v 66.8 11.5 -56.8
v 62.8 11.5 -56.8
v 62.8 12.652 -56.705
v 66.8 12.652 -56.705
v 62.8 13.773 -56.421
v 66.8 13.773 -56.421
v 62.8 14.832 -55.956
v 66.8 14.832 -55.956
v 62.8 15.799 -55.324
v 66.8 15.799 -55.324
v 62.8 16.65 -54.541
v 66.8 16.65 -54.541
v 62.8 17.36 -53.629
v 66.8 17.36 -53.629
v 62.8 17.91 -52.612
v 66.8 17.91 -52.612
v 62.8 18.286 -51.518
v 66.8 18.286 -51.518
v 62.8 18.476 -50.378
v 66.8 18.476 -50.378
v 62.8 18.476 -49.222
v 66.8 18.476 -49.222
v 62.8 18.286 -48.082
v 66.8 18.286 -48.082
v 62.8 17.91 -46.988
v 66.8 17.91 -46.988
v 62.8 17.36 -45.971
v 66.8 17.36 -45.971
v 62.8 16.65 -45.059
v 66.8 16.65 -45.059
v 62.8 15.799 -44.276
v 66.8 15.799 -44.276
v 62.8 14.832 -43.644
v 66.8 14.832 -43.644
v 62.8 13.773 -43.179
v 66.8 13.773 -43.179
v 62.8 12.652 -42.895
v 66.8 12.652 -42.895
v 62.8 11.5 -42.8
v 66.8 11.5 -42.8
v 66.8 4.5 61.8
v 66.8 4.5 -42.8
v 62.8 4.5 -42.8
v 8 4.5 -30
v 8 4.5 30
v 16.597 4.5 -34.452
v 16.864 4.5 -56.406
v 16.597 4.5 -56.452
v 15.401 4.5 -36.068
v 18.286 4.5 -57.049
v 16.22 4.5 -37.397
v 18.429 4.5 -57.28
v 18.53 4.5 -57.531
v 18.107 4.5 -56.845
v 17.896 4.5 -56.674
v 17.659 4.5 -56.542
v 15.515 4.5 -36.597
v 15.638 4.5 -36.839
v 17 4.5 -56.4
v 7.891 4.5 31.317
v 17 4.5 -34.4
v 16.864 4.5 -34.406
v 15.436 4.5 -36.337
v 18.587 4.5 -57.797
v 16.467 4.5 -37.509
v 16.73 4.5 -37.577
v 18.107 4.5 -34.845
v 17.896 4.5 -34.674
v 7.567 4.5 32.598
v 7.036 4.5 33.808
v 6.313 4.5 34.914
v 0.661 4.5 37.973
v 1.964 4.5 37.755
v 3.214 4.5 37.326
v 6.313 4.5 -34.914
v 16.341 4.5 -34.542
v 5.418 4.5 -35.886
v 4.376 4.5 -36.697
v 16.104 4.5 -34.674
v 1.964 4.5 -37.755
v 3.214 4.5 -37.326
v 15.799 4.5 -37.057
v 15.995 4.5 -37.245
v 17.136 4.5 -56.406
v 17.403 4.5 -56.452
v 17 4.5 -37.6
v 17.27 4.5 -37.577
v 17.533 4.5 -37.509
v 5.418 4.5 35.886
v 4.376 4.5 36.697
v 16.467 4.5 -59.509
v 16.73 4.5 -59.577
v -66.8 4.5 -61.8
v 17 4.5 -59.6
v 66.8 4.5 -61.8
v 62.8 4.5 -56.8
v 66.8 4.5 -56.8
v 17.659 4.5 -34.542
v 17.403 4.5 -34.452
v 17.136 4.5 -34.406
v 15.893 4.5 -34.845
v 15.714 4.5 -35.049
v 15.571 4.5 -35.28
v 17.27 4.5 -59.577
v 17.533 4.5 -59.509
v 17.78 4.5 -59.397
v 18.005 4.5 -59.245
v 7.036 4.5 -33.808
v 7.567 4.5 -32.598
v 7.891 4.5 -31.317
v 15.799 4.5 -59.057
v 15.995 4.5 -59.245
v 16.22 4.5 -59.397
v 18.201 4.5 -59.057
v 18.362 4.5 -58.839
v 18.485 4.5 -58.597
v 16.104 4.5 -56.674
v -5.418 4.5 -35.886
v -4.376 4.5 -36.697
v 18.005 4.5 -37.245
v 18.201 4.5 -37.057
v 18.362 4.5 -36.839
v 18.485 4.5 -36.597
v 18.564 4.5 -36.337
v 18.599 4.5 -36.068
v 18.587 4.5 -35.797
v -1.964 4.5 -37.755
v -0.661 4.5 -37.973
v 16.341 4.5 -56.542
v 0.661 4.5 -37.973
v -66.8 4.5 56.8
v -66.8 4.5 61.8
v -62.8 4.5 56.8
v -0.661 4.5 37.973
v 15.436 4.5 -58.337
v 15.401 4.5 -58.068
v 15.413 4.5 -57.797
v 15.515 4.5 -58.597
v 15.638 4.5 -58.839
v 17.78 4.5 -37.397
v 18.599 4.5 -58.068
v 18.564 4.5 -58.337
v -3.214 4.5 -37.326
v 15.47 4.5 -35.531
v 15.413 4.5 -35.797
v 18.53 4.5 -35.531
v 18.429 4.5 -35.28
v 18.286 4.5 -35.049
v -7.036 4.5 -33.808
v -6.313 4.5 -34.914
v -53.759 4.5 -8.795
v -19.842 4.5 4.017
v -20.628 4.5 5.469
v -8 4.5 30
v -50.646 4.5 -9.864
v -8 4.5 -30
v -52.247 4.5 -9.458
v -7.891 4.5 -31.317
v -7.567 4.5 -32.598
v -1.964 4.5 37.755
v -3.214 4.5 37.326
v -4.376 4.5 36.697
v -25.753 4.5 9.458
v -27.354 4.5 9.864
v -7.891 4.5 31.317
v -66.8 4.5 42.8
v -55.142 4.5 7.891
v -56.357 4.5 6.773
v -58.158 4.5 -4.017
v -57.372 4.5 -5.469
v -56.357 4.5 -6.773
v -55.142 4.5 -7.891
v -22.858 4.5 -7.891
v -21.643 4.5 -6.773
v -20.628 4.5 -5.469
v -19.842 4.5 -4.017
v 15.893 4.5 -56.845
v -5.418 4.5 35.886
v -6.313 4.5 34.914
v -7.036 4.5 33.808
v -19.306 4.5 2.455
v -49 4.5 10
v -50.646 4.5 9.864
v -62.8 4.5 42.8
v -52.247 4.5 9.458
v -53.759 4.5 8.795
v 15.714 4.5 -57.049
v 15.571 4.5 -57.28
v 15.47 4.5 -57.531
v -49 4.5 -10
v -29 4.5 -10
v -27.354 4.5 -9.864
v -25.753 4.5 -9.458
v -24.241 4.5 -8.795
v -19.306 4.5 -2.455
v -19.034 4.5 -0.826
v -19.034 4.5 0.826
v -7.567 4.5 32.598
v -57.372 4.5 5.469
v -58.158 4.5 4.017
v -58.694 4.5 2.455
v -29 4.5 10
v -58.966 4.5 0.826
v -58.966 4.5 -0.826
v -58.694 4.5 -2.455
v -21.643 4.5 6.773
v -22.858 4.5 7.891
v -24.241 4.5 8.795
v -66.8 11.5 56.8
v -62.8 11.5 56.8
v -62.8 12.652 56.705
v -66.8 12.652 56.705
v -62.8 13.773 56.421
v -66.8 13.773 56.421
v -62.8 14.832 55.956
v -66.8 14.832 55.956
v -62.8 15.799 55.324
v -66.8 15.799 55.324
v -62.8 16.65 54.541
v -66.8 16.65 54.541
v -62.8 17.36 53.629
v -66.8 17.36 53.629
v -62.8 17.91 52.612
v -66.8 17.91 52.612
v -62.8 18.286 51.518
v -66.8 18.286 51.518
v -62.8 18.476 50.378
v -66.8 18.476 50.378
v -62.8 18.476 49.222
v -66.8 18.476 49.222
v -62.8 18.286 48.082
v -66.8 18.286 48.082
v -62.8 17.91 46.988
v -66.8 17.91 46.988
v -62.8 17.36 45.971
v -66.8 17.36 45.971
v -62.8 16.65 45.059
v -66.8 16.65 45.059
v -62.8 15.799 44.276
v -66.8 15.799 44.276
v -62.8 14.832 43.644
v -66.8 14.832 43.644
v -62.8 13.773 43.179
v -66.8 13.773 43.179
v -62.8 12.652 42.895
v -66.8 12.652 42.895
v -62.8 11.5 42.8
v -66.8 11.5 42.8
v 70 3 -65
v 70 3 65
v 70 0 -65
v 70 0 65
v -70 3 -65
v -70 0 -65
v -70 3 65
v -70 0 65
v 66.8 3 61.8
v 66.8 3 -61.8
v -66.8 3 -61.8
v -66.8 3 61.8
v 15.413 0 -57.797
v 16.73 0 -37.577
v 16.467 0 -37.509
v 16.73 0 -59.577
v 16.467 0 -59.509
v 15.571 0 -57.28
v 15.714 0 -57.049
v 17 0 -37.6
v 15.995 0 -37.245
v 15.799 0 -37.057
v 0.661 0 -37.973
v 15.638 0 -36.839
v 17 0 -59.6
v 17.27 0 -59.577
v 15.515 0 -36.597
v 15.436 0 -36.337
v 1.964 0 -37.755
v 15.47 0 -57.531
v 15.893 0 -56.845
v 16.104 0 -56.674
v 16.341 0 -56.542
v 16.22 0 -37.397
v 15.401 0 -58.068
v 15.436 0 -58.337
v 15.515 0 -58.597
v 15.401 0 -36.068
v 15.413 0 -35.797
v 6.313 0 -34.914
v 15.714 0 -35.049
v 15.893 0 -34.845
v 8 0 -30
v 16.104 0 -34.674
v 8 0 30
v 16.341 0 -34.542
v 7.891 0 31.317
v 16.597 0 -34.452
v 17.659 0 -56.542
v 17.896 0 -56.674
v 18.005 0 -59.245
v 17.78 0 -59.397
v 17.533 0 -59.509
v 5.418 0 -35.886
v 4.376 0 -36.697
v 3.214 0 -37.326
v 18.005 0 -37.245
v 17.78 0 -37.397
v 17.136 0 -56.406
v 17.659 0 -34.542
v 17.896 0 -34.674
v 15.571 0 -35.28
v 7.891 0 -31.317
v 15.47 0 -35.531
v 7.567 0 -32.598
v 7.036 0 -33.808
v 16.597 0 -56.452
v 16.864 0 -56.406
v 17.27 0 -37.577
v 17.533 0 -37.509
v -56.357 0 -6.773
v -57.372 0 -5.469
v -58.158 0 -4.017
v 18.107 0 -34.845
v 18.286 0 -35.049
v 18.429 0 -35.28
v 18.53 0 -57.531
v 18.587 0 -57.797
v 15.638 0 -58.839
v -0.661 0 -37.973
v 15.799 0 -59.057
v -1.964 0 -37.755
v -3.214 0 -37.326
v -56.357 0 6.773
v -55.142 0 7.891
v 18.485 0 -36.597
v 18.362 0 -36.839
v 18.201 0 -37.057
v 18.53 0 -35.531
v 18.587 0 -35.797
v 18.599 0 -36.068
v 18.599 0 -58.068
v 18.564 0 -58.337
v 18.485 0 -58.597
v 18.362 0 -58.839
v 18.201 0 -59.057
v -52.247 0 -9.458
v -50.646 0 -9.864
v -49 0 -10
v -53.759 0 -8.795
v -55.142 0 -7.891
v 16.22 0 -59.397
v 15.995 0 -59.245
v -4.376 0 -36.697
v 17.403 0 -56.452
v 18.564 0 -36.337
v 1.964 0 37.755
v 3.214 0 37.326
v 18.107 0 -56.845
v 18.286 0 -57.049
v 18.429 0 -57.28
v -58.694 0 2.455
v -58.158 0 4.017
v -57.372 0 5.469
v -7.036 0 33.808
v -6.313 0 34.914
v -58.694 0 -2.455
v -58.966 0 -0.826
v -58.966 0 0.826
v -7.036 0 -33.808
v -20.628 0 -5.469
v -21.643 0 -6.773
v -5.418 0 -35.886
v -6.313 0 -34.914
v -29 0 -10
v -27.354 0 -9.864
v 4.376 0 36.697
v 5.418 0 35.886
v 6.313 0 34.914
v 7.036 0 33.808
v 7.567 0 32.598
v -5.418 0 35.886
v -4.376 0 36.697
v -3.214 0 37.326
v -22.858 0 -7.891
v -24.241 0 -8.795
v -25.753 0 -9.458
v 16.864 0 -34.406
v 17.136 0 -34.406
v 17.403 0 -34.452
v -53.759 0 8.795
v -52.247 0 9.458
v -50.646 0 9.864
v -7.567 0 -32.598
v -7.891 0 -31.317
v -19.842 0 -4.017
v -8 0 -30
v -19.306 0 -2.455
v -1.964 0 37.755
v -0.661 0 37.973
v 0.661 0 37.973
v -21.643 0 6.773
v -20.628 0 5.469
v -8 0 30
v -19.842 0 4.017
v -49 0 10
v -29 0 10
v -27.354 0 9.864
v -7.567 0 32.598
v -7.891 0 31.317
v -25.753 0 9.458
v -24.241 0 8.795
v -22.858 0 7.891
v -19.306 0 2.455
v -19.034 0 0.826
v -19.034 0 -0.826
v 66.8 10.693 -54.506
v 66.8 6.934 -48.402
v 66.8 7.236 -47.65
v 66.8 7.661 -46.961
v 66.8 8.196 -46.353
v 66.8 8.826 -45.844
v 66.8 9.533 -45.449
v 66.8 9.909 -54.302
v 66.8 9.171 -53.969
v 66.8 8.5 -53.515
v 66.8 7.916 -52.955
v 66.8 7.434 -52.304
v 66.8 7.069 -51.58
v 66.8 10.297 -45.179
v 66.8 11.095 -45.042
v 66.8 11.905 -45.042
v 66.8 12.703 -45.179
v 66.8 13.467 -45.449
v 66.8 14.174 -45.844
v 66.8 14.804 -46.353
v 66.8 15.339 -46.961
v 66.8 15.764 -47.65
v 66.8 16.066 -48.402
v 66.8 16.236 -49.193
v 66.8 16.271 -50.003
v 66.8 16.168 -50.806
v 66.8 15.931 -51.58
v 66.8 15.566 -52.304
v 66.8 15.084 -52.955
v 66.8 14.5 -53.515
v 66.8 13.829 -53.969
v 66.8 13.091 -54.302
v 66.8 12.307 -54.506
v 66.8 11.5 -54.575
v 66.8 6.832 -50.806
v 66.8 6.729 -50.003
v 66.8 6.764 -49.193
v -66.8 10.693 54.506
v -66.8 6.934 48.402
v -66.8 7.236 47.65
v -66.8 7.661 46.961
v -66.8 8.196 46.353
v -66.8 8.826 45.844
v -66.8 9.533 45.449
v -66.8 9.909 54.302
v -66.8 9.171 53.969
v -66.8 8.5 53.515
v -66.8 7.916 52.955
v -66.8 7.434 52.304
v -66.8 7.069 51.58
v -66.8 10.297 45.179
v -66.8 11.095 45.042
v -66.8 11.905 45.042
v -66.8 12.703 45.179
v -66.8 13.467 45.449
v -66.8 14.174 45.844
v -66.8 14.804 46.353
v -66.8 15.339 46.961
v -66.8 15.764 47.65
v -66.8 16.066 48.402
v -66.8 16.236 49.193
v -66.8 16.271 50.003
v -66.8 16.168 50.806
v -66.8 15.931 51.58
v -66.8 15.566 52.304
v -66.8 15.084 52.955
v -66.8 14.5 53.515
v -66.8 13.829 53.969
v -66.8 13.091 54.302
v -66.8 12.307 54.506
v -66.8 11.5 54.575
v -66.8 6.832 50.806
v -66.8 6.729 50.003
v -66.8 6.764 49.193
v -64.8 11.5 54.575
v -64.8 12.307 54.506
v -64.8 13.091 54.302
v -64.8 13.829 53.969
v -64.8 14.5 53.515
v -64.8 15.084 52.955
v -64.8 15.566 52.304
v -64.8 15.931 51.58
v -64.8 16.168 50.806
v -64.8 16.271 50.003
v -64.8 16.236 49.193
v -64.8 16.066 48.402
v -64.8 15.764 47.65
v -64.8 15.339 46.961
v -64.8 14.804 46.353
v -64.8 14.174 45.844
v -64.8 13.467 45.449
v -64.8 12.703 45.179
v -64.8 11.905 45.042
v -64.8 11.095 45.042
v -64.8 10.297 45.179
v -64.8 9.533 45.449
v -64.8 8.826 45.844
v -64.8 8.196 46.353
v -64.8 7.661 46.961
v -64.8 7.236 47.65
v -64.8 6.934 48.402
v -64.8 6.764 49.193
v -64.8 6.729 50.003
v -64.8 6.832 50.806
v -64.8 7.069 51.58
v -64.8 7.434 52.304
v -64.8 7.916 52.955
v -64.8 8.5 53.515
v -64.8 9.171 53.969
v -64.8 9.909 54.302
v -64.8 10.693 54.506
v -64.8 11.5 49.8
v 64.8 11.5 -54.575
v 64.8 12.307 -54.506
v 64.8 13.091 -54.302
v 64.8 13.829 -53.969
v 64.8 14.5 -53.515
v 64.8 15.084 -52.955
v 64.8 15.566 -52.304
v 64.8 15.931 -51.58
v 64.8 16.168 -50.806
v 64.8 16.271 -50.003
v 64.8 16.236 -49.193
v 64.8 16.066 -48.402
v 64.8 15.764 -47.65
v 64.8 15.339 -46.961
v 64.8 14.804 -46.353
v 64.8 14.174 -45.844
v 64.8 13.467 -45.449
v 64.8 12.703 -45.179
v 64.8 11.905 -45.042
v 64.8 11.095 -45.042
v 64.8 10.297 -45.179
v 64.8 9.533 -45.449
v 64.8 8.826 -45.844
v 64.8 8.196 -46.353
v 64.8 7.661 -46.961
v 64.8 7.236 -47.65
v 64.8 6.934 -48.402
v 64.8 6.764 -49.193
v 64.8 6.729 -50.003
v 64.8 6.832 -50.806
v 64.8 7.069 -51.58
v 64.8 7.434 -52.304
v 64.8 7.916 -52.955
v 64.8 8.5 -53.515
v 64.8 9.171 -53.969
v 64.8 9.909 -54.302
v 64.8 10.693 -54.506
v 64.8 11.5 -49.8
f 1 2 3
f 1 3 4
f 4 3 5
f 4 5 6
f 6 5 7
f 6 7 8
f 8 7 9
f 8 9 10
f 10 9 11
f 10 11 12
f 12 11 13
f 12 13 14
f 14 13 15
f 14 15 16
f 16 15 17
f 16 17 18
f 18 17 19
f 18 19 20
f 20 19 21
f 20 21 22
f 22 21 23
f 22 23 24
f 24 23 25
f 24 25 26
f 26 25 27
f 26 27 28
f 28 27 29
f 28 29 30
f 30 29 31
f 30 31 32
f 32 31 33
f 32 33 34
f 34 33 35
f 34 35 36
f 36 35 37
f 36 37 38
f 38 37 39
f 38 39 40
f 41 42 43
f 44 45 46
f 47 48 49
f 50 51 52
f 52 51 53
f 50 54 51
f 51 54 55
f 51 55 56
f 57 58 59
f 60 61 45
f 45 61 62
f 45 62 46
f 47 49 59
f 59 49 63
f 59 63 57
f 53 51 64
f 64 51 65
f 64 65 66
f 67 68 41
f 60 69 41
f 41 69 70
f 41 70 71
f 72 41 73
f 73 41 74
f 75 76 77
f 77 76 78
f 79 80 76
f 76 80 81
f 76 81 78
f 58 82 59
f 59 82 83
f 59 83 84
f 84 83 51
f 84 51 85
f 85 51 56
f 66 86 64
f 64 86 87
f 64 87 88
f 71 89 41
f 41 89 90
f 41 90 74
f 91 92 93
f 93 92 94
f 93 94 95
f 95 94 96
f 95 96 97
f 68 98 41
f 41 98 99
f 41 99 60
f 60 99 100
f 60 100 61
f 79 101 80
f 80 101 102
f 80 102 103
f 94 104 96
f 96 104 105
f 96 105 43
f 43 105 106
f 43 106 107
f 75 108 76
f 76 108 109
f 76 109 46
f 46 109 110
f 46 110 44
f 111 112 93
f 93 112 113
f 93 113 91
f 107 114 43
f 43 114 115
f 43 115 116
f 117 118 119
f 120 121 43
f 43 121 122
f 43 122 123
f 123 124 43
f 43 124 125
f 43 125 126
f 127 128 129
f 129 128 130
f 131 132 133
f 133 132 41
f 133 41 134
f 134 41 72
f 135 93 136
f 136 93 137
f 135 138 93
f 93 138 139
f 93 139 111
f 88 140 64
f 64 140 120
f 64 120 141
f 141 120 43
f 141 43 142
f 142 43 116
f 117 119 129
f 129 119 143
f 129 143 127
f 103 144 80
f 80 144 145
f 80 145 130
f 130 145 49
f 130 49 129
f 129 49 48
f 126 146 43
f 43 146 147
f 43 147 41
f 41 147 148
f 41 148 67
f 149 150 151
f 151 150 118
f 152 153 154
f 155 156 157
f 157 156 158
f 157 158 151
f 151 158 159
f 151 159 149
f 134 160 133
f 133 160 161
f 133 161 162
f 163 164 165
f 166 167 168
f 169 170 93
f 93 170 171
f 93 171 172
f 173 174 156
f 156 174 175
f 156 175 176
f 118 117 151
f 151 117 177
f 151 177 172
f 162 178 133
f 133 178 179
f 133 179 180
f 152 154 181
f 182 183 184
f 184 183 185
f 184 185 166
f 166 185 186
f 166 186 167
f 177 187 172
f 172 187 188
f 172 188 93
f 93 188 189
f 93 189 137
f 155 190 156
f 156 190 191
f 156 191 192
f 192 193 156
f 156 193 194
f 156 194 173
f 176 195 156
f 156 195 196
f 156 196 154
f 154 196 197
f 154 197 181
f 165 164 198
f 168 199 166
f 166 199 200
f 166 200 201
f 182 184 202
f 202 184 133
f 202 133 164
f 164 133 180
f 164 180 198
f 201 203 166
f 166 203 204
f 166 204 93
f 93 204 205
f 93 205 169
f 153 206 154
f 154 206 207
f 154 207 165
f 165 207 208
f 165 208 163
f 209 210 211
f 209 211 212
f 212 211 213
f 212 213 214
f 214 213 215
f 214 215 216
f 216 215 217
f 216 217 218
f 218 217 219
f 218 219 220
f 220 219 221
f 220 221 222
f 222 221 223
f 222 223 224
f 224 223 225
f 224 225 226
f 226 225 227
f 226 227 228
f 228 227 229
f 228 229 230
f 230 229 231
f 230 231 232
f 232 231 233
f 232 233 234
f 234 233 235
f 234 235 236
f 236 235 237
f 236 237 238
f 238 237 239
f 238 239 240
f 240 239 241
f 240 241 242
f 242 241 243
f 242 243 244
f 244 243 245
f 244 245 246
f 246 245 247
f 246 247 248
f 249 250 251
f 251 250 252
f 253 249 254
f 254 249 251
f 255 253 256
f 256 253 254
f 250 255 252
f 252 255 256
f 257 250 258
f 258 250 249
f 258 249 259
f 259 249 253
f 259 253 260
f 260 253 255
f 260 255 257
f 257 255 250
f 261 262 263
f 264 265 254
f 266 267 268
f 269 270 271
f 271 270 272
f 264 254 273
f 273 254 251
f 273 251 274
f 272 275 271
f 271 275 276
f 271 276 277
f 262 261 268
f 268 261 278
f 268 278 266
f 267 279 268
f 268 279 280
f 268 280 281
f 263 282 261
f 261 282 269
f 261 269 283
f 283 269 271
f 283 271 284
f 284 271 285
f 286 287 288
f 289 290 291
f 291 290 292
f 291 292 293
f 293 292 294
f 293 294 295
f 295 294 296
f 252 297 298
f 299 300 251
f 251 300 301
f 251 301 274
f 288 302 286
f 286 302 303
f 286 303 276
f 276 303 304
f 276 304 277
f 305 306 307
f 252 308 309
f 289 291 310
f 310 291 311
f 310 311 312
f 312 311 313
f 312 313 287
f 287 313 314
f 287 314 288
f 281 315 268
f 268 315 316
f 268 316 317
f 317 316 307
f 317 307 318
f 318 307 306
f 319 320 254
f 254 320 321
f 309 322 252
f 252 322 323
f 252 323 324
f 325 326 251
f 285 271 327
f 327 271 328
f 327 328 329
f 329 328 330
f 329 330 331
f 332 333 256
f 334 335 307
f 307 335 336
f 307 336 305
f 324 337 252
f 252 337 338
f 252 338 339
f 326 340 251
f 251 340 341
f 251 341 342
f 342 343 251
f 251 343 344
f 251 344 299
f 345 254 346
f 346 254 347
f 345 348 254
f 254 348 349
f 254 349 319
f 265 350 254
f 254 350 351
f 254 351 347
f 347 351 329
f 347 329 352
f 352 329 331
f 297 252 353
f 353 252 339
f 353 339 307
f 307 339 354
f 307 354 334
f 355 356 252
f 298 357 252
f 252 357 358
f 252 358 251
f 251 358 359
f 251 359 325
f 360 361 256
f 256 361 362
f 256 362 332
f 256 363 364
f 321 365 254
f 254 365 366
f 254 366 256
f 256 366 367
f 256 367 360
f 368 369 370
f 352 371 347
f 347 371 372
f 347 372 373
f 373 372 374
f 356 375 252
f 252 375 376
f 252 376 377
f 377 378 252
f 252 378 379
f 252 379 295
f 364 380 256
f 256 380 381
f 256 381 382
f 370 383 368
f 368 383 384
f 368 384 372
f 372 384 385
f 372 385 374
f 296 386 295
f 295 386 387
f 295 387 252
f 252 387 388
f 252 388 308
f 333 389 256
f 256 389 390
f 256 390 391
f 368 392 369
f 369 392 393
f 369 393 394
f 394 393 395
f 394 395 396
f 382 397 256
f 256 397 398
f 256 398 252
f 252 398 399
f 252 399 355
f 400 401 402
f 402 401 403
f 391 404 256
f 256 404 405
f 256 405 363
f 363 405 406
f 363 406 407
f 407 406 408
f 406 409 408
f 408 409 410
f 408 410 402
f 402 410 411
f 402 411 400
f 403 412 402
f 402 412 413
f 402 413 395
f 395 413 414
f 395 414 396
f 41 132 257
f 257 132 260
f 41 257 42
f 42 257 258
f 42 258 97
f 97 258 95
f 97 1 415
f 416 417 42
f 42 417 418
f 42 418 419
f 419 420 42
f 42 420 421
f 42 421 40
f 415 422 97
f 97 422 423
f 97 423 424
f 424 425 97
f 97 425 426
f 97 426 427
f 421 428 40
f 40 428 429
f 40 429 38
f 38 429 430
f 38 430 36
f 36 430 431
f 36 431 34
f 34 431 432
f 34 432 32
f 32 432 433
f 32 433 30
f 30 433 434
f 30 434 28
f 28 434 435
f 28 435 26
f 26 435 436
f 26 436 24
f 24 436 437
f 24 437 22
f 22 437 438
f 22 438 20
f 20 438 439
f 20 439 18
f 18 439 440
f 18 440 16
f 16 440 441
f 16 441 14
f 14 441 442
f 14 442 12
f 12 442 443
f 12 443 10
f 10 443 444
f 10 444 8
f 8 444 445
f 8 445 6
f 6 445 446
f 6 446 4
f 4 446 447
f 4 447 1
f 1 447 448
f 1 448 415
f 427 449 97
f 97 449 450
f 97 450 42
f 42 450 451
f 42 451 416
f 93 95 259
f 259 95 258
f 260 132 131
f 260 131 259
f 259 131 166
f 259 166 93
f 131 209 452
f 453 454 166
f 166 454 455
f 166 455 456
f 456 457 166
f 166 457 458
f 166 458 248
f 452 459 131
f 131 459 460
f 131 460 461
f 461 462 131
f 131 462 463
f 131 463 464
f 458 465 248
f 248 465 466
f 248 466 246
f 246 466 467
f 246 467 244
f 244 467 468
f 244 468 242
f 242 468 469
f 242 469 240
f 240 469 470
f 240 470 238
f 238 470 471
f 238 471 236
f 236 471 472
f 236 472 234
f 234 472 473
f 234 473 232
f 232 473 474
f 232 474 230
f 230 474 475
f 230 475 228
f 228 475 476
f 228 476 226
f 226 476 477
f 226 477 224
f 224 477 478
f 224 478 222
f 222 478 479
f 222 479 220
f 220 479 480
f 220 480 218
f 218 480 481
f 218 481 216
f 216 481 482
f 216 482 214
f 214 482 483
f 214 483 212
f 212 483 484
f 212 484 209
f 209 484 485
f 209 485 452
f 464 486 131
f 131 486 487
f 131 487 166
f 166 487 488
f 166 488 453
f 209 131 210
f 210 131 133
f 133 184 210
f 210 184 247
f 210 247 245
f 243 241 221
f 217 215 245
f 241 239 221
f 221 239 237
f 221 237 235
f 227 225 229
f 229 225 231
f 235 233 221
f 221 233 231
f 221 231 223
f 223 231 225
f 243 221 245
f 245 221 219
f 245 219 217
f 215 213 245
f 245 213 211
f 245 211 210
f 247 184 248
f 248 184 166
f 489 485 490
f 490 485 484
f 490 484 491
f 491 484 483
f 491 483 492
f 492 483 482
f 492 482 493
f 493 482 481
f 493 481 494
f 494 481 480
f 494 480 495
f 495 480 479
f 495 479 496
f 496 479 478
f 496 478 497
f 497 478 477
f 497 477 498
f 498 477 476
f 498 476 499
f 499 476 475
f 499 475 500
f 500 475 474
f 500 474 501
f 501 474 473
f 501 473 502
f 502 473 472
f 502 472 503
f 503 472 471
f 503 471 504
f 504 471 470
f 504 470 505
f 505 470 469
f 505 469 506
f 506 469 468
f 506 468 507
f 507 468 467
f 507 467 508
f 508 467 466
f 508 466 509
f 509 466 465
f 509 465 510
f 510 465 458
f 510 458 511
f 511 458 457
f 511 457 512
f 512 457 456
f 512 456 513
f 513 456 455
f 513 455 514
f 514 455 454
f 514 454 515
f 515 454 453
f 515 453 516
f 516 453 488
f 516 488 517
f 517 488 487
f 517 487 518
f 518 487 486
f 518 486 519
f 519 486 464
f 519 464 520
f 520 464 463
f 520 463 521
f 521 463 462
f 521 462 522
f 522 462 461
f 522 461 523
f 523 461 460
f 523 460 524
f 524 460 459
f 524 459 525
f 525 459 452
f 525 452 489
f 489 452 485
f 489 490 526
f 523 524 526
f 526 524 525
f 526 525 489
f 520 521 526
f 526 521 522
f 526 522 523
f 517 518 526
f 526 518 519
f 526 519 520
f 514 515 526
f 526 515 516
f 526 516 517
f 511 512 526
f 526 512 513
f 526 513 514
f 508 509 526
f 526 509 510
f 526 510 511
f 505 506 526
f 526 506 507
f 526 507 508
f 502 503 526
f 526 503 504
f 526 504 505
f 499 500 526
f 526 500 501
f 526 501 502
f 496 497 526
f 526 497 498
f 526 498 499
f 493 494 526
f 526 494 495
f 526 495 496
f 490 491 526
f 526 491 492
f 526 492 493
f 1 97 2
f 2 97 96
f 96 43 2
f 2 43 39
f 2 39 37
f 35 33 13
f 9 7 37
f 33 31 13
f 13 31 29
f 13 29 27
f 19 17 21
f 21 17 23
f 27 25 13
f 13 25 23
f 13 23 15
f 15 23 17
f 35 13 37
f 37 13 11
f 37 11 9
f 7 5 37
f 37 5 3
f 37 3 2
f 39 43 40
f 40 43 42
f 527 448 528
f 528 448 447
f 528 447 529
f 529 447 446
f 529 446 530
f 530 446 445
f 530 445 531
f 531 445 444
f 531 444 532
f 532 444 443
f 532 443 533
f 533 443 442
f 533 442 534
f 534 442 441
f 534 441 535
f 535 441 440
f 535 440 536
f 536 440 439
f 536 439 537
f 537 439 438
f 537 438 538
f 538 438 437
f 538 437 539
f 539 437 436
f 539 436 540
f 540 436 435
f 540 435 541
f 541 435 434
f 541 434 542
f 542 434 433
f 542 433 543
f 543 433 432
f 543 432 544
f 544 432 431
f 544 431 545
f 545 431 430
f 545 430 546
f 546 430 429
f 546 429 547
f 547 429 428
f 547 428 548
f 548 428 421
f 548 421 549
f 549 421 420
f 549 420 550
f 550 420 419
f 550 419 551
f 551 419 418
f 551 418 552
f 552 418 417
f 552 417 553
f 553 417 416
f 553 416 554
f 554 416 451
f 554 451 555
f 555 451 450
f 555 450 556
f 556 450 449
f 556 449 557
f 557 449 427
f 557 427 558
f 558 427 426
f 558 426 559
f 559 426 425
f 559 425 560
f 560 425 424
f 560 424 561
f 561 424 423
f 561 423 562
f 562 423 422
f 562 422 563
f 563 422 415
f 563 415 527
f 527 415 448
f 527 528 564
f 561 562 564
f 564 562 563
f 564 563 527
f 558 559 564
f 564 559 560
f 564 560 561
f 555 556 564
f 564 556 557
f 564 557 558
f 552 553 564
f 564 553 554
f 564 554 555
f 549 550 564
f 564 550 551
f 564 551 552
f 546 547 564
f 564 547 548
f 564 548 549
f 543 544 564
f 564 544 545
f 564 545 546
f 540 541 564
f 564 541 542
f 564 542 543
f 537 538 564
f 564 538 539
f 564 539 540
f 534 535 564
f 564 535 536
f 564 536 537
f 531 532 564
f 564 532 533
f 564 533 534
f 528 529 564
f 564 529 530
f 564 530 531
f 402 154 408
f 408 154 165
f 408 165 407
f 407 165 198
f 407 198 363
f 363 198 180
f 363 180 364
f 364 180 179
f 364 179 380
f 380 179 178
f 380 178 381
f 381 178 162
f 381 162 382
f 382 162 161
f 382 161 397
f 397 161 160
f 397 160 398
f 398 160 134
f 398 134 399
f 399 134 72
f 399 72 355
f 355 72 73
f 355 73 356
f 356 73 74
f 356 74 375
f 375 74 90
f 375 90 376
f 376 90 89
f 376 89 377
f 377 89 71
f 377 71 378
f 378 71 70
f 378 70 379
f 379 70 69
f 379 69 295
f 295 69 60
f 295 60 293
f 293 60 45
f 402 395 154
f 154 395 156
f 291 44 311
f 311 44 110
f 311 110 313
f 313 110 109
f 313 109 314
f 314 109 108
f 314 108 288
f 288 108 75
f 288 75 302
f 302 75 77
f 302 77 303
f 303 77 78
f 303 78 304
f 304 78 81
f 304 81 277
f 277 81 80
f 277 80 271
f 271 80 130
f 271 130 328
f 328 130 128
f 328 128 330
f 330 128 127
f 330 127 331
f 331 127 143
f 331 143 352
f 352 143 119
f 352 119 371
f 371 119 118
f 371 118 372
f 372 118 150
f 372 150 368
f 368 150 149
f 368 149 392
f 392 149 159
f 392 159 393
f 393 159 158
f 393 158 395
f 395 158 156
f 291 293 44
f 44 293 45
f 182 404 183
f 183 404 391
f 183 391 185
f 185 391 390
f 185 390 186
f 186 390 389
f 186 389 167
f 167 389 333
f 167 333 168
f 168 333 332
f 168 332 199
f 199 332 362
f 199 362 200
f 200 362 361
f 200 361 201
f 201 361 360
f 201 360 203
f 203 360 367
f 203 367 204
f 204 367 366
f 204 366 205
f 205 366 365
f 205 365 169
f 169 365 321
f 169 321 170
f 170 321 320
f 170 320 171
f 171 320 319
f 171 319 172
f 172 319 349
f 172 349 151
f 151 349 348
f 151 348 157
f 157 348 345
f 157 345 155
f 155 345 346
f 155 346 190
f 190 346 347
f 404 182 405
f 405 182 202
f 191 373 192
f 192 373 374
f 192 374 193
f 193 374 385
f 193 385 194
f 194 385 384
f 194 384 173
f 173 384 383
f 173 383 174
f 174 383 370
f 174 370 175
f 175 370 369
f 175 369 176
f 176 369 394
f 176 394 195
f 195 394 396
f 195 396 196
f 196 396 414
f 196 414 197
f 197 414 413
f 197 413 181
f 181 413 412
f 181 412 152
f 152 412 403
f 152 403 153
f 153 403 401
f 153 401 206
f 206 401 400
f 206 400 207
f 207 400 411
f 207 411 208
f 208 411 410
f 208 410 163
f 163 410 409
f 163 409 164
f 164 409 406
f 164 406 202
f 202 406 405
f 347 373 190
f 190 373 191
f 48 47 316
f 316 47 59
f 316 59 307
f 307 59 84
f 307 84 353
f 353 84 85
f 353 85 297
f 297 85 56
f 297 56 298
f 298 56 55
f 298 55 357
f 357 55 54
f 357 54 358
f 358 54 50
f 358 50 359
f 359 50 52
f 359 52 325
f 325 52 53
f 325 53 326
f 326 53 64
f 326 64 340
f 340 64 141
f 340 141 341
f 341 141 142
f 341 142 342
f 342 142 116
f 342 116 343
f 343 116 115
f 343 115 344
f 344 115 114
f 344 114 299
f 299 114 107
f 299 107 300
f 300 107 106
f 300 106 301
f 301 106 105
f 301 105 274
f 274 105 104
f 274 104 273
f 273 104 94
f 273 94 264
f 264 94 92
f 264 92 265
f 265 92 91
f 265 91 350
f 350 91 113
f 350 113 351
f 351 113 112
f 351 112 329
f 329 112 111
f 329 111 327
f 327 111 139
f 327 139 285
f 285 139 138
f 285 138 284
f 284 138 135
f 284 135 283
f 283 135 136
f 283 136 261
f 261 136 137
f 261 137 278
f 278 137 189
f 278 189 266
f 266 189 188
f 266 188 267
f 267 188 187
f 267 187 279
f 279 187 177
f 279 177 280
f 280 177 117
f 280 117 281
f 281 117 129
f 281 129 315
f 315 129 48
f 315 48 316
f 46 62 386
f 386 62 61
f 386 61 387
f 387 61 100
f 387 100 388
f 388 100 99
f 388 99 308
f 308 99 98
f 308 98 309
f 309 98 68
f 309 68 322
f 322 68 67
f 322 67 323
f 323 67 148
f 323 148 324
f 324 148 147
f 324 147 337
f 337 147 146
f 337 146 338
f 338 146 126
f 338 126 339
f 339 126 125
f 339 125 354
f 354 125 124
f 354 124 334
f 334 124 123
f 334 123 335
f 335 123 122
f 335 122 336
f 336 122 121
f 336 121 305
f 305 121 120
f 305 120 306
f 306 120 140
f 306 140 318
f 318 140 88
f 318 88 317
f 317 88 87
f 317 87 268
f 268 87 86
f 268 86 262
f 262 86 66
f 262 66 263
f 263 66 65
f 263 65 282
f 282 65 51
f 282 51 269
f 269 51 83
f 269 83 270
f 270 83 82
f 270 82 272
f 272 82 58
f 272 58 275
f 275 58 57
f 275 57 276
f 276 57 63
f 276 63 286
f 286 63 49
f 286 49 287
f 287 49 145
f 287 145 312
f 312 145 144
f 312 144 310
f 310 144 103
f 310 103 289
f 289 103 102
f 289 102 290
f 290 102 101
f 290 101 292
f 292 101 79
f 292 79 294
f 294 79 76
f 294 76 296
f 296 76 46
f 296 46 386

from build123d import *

# Parameters (mm, degrees)
SKETCH1_W                       = 140
SKETCH1_H                       = 130
BOSS_EXTRUDE1_DEPTH             = 3
SKETCH2_W                       = 133.6
SKETCH2_H                       = 123.6
BOSS_EXTRUDE2_DEPTH             = 1.5
SKETCH5_W                       = 4
SKETCH5_H                       = 14
BOSS_EXTRUDE3_DEPTH             = 14
SKETCH6_R                       = 4.775
CUT_EXTRUDE3_DEPTH              = 2
FILLET1_RADIUS                  = 7
FILLET1_LENGTH                  = 4
CIRPATTERN2_COUNT               = 2
FILLET1_OF_CIRPATTERN2_2_RADIUS = 7
FILLET1_OF_CIRPATTERN2_2_LENGTH = 4
CUT_EXTRUDE4_DEPTH              = 97.545326143
CUT_EXTRUDE5_DEPTH              = 98.29979445
SKETCH9_R                       = 1.6
CUT_EXTRUDE6_DEPTH              = 98.29979445


with BuildPart() as part:
    # Sketch1 → Boss-Extrude1 (new body)
    with BuildSketch(Plane(origin=(0, 0, 0), x_dir=(1, 0, 0), z_dir=(0, 1, 0))):
        Rectangle(SKETCH1_W, SKETCH1_H)
    extrude(amount=BOSS_EXTRUDE1_DEPTH)

    # Sketch2 → Boss-Extrude2 (add)
    with BuildSketch(Plane(origin=(0, 3, 0), x_dir=(1, 0, 0), z_dir=(0, 1, 0))):
        Rectangle(SKETCH2_W, SKETCH2_H)
    extrude(amount=BOSS_EXTRUDE2_DEPTH)

    # Sketch5 → Boss-Extrude3 (add)
    with BuildSketch(Plane(origin=(0, 4.5, 0), x_dir=(1, 0, 0), z_dir=(0, 1, 0))):
        with Locations((-64.8, -49.8)):
            Rectangle(SKETCH5_W, SKETCH5_H)
    boss_extrude3 = extrude(amount=BOSS_EXTRUDE3_DEPTH)

    # Sketch6 → Cut-Extrude3 (cut)
    with BuildSketch(Plane.ZY.offset(66.8)):
        with Locations((49.8, 11.5)):
            Circle(SKETCH6_R)
    cut_extrude3 = extrude(amount=-CUT_EXTRUDE3_DEPTH, mode=Mode.SUBTRACT)

    # Fillet1: full round fillet: the end face becomes a half cylinder, R = half its width
    fillet1_face = Plane((-64.8, 18.5, 49.8), x_dir=(1, 0, 0), z_dir=(0, 1, 0))  # on the end face: x along it, z out of the body
    fillet1_slab = fillet1_face.offset(-FILLET1_RADIUS / 2) * Box(FILLET1_LENGTH, 2 * FILLET1_RADIUS, FILLET1_RADIUS, mode=Mode.PRIVATE)  # the body's end, R deep
    fillet1_round = Plane((-64.8, 11.5, 49.8), x_dir=(0, 1, 0), z_dir=(1, 0, 0)) * Cylinder(FILLET1_RADIUS, FILLET1_LENGTH, mode=Mode.PRIVATE)  # its axis R under the face
    add(fillet1_slab - fillet1_round, mode=Mode.SUBTRACT)

    # CirPattern2: Boss-Extrude3, Cut-Extrude3 ×2 about axis
    cirpattern2_axis = Axis((0, 0, 0), (0, 1, 0))
    add([boss_extrude3.rotate(cirpattern2_axis, i * 360 / CIRPATTERN2_COUNT) for i in range(1, CIRPATTERN2_COUNT)])
    add([cut_extrude3.rotate(cirpattern2_axis, i * 360 / CIRPATTERN2_COUNT) for i in range(1, CIRPATTERN2_COUNT)], mode=Mode.SUBTRACT)

    # Fillet1 of CirPattern2 2: full round fillet: the end face becomes a half cylinder, R = half its width
    fillet1_of_cirpattern2_2_face = Plane((64.8, 18.5, -49.8), x_dir=(-1, 0, 0), z_dir=(0, 1, 0))  # on the end face: x along it, z out of the body
    fillet1_of_cirpattern2_2_slab = fillet1_of_cirpattern2_2_face.offset(-FILLET1_OF_CIRPATTERN2_2_RADIUS / 2) * Box(FILLET1_OF_CIRPATTERN2_2_LENGTH, 2 * FILLET1_OF_CIRPATTERN2_2_RADIUS, FILLET1_OF_CIRPATTERN2_2_RADIUS, mode=Mode.PRIVATE)  # the body's end, R deep
    fillet1_of_cirpattern2_2_round = Plane((64.8, 11.5, -49.8), x_dir=(0, 1, 0), z_dir=(-1, 0, 0)) * Cylinder(FILLET1_OF_CIRPATTERN2_2_RADIUS, FILLET1_OF_CIRPATTERN2_2_LENGTH, mode=Mode.PRIVATE)  # its axis R under the face
    add(fillet1_of_cirpattern2_2_slab - fillet1_of_cirpattern2_2_round, mode=Mode.SUBTRACT)

    # Sketch7 → Cut-Extrude4 (cut, through all)
    with BuildSketch(Plane(origin=(0, 4.5, 0), x_dir=(1, 0, 0), z_dir=(0, 1, 0))):
        with BuildLine():
            Line((-8, -30), (-8, 30))
            ThreePointArc((-8, 30), (0, 38), (8, 30))
            Line((8, 30), (8, -30))
            ThreePointArc((8, -30), (0, -38), (-8, -30))
        make_face()
    extrude(amount=-CUT_EXTRUDE4_DEPTH, mode=Mode.SUBTRACT)

    # Sketch8 → Cut-Extrude5 (cut, through all)
    with BuildSketch(Plane.XZ):
        with BuildLine():
            Line((-49, 10), (-29, 10))
            ThreePointArc((-29, 10), (-19, 0), (-29, -10))
            Line((-29, -10), (-49, -10))
            ThreePointArc((-49, -10), (-59, 0), (-49, 10))
        make_face()
    extrude(amount=-CUT_EXTRUDE5_DEPTH, mode=Mode.SUBTRACT)

    # Sketch9 → Cut-Extrude6 (cut, through all)
    with BuildSketch(Plane.XZ):
        with Locations(Location((17, -36, 0), (0, 0, 270))):
            Circle(SKETCH9_R)
        with Locations(Location((17, -58, 0), (0, 0, 270))):
            Circle(SKETCH9_R)
    extrude(amount=-CUT_EXTRUDE6_DEPTH, mode=Mode.SUBTRACT)


solid = part.part
